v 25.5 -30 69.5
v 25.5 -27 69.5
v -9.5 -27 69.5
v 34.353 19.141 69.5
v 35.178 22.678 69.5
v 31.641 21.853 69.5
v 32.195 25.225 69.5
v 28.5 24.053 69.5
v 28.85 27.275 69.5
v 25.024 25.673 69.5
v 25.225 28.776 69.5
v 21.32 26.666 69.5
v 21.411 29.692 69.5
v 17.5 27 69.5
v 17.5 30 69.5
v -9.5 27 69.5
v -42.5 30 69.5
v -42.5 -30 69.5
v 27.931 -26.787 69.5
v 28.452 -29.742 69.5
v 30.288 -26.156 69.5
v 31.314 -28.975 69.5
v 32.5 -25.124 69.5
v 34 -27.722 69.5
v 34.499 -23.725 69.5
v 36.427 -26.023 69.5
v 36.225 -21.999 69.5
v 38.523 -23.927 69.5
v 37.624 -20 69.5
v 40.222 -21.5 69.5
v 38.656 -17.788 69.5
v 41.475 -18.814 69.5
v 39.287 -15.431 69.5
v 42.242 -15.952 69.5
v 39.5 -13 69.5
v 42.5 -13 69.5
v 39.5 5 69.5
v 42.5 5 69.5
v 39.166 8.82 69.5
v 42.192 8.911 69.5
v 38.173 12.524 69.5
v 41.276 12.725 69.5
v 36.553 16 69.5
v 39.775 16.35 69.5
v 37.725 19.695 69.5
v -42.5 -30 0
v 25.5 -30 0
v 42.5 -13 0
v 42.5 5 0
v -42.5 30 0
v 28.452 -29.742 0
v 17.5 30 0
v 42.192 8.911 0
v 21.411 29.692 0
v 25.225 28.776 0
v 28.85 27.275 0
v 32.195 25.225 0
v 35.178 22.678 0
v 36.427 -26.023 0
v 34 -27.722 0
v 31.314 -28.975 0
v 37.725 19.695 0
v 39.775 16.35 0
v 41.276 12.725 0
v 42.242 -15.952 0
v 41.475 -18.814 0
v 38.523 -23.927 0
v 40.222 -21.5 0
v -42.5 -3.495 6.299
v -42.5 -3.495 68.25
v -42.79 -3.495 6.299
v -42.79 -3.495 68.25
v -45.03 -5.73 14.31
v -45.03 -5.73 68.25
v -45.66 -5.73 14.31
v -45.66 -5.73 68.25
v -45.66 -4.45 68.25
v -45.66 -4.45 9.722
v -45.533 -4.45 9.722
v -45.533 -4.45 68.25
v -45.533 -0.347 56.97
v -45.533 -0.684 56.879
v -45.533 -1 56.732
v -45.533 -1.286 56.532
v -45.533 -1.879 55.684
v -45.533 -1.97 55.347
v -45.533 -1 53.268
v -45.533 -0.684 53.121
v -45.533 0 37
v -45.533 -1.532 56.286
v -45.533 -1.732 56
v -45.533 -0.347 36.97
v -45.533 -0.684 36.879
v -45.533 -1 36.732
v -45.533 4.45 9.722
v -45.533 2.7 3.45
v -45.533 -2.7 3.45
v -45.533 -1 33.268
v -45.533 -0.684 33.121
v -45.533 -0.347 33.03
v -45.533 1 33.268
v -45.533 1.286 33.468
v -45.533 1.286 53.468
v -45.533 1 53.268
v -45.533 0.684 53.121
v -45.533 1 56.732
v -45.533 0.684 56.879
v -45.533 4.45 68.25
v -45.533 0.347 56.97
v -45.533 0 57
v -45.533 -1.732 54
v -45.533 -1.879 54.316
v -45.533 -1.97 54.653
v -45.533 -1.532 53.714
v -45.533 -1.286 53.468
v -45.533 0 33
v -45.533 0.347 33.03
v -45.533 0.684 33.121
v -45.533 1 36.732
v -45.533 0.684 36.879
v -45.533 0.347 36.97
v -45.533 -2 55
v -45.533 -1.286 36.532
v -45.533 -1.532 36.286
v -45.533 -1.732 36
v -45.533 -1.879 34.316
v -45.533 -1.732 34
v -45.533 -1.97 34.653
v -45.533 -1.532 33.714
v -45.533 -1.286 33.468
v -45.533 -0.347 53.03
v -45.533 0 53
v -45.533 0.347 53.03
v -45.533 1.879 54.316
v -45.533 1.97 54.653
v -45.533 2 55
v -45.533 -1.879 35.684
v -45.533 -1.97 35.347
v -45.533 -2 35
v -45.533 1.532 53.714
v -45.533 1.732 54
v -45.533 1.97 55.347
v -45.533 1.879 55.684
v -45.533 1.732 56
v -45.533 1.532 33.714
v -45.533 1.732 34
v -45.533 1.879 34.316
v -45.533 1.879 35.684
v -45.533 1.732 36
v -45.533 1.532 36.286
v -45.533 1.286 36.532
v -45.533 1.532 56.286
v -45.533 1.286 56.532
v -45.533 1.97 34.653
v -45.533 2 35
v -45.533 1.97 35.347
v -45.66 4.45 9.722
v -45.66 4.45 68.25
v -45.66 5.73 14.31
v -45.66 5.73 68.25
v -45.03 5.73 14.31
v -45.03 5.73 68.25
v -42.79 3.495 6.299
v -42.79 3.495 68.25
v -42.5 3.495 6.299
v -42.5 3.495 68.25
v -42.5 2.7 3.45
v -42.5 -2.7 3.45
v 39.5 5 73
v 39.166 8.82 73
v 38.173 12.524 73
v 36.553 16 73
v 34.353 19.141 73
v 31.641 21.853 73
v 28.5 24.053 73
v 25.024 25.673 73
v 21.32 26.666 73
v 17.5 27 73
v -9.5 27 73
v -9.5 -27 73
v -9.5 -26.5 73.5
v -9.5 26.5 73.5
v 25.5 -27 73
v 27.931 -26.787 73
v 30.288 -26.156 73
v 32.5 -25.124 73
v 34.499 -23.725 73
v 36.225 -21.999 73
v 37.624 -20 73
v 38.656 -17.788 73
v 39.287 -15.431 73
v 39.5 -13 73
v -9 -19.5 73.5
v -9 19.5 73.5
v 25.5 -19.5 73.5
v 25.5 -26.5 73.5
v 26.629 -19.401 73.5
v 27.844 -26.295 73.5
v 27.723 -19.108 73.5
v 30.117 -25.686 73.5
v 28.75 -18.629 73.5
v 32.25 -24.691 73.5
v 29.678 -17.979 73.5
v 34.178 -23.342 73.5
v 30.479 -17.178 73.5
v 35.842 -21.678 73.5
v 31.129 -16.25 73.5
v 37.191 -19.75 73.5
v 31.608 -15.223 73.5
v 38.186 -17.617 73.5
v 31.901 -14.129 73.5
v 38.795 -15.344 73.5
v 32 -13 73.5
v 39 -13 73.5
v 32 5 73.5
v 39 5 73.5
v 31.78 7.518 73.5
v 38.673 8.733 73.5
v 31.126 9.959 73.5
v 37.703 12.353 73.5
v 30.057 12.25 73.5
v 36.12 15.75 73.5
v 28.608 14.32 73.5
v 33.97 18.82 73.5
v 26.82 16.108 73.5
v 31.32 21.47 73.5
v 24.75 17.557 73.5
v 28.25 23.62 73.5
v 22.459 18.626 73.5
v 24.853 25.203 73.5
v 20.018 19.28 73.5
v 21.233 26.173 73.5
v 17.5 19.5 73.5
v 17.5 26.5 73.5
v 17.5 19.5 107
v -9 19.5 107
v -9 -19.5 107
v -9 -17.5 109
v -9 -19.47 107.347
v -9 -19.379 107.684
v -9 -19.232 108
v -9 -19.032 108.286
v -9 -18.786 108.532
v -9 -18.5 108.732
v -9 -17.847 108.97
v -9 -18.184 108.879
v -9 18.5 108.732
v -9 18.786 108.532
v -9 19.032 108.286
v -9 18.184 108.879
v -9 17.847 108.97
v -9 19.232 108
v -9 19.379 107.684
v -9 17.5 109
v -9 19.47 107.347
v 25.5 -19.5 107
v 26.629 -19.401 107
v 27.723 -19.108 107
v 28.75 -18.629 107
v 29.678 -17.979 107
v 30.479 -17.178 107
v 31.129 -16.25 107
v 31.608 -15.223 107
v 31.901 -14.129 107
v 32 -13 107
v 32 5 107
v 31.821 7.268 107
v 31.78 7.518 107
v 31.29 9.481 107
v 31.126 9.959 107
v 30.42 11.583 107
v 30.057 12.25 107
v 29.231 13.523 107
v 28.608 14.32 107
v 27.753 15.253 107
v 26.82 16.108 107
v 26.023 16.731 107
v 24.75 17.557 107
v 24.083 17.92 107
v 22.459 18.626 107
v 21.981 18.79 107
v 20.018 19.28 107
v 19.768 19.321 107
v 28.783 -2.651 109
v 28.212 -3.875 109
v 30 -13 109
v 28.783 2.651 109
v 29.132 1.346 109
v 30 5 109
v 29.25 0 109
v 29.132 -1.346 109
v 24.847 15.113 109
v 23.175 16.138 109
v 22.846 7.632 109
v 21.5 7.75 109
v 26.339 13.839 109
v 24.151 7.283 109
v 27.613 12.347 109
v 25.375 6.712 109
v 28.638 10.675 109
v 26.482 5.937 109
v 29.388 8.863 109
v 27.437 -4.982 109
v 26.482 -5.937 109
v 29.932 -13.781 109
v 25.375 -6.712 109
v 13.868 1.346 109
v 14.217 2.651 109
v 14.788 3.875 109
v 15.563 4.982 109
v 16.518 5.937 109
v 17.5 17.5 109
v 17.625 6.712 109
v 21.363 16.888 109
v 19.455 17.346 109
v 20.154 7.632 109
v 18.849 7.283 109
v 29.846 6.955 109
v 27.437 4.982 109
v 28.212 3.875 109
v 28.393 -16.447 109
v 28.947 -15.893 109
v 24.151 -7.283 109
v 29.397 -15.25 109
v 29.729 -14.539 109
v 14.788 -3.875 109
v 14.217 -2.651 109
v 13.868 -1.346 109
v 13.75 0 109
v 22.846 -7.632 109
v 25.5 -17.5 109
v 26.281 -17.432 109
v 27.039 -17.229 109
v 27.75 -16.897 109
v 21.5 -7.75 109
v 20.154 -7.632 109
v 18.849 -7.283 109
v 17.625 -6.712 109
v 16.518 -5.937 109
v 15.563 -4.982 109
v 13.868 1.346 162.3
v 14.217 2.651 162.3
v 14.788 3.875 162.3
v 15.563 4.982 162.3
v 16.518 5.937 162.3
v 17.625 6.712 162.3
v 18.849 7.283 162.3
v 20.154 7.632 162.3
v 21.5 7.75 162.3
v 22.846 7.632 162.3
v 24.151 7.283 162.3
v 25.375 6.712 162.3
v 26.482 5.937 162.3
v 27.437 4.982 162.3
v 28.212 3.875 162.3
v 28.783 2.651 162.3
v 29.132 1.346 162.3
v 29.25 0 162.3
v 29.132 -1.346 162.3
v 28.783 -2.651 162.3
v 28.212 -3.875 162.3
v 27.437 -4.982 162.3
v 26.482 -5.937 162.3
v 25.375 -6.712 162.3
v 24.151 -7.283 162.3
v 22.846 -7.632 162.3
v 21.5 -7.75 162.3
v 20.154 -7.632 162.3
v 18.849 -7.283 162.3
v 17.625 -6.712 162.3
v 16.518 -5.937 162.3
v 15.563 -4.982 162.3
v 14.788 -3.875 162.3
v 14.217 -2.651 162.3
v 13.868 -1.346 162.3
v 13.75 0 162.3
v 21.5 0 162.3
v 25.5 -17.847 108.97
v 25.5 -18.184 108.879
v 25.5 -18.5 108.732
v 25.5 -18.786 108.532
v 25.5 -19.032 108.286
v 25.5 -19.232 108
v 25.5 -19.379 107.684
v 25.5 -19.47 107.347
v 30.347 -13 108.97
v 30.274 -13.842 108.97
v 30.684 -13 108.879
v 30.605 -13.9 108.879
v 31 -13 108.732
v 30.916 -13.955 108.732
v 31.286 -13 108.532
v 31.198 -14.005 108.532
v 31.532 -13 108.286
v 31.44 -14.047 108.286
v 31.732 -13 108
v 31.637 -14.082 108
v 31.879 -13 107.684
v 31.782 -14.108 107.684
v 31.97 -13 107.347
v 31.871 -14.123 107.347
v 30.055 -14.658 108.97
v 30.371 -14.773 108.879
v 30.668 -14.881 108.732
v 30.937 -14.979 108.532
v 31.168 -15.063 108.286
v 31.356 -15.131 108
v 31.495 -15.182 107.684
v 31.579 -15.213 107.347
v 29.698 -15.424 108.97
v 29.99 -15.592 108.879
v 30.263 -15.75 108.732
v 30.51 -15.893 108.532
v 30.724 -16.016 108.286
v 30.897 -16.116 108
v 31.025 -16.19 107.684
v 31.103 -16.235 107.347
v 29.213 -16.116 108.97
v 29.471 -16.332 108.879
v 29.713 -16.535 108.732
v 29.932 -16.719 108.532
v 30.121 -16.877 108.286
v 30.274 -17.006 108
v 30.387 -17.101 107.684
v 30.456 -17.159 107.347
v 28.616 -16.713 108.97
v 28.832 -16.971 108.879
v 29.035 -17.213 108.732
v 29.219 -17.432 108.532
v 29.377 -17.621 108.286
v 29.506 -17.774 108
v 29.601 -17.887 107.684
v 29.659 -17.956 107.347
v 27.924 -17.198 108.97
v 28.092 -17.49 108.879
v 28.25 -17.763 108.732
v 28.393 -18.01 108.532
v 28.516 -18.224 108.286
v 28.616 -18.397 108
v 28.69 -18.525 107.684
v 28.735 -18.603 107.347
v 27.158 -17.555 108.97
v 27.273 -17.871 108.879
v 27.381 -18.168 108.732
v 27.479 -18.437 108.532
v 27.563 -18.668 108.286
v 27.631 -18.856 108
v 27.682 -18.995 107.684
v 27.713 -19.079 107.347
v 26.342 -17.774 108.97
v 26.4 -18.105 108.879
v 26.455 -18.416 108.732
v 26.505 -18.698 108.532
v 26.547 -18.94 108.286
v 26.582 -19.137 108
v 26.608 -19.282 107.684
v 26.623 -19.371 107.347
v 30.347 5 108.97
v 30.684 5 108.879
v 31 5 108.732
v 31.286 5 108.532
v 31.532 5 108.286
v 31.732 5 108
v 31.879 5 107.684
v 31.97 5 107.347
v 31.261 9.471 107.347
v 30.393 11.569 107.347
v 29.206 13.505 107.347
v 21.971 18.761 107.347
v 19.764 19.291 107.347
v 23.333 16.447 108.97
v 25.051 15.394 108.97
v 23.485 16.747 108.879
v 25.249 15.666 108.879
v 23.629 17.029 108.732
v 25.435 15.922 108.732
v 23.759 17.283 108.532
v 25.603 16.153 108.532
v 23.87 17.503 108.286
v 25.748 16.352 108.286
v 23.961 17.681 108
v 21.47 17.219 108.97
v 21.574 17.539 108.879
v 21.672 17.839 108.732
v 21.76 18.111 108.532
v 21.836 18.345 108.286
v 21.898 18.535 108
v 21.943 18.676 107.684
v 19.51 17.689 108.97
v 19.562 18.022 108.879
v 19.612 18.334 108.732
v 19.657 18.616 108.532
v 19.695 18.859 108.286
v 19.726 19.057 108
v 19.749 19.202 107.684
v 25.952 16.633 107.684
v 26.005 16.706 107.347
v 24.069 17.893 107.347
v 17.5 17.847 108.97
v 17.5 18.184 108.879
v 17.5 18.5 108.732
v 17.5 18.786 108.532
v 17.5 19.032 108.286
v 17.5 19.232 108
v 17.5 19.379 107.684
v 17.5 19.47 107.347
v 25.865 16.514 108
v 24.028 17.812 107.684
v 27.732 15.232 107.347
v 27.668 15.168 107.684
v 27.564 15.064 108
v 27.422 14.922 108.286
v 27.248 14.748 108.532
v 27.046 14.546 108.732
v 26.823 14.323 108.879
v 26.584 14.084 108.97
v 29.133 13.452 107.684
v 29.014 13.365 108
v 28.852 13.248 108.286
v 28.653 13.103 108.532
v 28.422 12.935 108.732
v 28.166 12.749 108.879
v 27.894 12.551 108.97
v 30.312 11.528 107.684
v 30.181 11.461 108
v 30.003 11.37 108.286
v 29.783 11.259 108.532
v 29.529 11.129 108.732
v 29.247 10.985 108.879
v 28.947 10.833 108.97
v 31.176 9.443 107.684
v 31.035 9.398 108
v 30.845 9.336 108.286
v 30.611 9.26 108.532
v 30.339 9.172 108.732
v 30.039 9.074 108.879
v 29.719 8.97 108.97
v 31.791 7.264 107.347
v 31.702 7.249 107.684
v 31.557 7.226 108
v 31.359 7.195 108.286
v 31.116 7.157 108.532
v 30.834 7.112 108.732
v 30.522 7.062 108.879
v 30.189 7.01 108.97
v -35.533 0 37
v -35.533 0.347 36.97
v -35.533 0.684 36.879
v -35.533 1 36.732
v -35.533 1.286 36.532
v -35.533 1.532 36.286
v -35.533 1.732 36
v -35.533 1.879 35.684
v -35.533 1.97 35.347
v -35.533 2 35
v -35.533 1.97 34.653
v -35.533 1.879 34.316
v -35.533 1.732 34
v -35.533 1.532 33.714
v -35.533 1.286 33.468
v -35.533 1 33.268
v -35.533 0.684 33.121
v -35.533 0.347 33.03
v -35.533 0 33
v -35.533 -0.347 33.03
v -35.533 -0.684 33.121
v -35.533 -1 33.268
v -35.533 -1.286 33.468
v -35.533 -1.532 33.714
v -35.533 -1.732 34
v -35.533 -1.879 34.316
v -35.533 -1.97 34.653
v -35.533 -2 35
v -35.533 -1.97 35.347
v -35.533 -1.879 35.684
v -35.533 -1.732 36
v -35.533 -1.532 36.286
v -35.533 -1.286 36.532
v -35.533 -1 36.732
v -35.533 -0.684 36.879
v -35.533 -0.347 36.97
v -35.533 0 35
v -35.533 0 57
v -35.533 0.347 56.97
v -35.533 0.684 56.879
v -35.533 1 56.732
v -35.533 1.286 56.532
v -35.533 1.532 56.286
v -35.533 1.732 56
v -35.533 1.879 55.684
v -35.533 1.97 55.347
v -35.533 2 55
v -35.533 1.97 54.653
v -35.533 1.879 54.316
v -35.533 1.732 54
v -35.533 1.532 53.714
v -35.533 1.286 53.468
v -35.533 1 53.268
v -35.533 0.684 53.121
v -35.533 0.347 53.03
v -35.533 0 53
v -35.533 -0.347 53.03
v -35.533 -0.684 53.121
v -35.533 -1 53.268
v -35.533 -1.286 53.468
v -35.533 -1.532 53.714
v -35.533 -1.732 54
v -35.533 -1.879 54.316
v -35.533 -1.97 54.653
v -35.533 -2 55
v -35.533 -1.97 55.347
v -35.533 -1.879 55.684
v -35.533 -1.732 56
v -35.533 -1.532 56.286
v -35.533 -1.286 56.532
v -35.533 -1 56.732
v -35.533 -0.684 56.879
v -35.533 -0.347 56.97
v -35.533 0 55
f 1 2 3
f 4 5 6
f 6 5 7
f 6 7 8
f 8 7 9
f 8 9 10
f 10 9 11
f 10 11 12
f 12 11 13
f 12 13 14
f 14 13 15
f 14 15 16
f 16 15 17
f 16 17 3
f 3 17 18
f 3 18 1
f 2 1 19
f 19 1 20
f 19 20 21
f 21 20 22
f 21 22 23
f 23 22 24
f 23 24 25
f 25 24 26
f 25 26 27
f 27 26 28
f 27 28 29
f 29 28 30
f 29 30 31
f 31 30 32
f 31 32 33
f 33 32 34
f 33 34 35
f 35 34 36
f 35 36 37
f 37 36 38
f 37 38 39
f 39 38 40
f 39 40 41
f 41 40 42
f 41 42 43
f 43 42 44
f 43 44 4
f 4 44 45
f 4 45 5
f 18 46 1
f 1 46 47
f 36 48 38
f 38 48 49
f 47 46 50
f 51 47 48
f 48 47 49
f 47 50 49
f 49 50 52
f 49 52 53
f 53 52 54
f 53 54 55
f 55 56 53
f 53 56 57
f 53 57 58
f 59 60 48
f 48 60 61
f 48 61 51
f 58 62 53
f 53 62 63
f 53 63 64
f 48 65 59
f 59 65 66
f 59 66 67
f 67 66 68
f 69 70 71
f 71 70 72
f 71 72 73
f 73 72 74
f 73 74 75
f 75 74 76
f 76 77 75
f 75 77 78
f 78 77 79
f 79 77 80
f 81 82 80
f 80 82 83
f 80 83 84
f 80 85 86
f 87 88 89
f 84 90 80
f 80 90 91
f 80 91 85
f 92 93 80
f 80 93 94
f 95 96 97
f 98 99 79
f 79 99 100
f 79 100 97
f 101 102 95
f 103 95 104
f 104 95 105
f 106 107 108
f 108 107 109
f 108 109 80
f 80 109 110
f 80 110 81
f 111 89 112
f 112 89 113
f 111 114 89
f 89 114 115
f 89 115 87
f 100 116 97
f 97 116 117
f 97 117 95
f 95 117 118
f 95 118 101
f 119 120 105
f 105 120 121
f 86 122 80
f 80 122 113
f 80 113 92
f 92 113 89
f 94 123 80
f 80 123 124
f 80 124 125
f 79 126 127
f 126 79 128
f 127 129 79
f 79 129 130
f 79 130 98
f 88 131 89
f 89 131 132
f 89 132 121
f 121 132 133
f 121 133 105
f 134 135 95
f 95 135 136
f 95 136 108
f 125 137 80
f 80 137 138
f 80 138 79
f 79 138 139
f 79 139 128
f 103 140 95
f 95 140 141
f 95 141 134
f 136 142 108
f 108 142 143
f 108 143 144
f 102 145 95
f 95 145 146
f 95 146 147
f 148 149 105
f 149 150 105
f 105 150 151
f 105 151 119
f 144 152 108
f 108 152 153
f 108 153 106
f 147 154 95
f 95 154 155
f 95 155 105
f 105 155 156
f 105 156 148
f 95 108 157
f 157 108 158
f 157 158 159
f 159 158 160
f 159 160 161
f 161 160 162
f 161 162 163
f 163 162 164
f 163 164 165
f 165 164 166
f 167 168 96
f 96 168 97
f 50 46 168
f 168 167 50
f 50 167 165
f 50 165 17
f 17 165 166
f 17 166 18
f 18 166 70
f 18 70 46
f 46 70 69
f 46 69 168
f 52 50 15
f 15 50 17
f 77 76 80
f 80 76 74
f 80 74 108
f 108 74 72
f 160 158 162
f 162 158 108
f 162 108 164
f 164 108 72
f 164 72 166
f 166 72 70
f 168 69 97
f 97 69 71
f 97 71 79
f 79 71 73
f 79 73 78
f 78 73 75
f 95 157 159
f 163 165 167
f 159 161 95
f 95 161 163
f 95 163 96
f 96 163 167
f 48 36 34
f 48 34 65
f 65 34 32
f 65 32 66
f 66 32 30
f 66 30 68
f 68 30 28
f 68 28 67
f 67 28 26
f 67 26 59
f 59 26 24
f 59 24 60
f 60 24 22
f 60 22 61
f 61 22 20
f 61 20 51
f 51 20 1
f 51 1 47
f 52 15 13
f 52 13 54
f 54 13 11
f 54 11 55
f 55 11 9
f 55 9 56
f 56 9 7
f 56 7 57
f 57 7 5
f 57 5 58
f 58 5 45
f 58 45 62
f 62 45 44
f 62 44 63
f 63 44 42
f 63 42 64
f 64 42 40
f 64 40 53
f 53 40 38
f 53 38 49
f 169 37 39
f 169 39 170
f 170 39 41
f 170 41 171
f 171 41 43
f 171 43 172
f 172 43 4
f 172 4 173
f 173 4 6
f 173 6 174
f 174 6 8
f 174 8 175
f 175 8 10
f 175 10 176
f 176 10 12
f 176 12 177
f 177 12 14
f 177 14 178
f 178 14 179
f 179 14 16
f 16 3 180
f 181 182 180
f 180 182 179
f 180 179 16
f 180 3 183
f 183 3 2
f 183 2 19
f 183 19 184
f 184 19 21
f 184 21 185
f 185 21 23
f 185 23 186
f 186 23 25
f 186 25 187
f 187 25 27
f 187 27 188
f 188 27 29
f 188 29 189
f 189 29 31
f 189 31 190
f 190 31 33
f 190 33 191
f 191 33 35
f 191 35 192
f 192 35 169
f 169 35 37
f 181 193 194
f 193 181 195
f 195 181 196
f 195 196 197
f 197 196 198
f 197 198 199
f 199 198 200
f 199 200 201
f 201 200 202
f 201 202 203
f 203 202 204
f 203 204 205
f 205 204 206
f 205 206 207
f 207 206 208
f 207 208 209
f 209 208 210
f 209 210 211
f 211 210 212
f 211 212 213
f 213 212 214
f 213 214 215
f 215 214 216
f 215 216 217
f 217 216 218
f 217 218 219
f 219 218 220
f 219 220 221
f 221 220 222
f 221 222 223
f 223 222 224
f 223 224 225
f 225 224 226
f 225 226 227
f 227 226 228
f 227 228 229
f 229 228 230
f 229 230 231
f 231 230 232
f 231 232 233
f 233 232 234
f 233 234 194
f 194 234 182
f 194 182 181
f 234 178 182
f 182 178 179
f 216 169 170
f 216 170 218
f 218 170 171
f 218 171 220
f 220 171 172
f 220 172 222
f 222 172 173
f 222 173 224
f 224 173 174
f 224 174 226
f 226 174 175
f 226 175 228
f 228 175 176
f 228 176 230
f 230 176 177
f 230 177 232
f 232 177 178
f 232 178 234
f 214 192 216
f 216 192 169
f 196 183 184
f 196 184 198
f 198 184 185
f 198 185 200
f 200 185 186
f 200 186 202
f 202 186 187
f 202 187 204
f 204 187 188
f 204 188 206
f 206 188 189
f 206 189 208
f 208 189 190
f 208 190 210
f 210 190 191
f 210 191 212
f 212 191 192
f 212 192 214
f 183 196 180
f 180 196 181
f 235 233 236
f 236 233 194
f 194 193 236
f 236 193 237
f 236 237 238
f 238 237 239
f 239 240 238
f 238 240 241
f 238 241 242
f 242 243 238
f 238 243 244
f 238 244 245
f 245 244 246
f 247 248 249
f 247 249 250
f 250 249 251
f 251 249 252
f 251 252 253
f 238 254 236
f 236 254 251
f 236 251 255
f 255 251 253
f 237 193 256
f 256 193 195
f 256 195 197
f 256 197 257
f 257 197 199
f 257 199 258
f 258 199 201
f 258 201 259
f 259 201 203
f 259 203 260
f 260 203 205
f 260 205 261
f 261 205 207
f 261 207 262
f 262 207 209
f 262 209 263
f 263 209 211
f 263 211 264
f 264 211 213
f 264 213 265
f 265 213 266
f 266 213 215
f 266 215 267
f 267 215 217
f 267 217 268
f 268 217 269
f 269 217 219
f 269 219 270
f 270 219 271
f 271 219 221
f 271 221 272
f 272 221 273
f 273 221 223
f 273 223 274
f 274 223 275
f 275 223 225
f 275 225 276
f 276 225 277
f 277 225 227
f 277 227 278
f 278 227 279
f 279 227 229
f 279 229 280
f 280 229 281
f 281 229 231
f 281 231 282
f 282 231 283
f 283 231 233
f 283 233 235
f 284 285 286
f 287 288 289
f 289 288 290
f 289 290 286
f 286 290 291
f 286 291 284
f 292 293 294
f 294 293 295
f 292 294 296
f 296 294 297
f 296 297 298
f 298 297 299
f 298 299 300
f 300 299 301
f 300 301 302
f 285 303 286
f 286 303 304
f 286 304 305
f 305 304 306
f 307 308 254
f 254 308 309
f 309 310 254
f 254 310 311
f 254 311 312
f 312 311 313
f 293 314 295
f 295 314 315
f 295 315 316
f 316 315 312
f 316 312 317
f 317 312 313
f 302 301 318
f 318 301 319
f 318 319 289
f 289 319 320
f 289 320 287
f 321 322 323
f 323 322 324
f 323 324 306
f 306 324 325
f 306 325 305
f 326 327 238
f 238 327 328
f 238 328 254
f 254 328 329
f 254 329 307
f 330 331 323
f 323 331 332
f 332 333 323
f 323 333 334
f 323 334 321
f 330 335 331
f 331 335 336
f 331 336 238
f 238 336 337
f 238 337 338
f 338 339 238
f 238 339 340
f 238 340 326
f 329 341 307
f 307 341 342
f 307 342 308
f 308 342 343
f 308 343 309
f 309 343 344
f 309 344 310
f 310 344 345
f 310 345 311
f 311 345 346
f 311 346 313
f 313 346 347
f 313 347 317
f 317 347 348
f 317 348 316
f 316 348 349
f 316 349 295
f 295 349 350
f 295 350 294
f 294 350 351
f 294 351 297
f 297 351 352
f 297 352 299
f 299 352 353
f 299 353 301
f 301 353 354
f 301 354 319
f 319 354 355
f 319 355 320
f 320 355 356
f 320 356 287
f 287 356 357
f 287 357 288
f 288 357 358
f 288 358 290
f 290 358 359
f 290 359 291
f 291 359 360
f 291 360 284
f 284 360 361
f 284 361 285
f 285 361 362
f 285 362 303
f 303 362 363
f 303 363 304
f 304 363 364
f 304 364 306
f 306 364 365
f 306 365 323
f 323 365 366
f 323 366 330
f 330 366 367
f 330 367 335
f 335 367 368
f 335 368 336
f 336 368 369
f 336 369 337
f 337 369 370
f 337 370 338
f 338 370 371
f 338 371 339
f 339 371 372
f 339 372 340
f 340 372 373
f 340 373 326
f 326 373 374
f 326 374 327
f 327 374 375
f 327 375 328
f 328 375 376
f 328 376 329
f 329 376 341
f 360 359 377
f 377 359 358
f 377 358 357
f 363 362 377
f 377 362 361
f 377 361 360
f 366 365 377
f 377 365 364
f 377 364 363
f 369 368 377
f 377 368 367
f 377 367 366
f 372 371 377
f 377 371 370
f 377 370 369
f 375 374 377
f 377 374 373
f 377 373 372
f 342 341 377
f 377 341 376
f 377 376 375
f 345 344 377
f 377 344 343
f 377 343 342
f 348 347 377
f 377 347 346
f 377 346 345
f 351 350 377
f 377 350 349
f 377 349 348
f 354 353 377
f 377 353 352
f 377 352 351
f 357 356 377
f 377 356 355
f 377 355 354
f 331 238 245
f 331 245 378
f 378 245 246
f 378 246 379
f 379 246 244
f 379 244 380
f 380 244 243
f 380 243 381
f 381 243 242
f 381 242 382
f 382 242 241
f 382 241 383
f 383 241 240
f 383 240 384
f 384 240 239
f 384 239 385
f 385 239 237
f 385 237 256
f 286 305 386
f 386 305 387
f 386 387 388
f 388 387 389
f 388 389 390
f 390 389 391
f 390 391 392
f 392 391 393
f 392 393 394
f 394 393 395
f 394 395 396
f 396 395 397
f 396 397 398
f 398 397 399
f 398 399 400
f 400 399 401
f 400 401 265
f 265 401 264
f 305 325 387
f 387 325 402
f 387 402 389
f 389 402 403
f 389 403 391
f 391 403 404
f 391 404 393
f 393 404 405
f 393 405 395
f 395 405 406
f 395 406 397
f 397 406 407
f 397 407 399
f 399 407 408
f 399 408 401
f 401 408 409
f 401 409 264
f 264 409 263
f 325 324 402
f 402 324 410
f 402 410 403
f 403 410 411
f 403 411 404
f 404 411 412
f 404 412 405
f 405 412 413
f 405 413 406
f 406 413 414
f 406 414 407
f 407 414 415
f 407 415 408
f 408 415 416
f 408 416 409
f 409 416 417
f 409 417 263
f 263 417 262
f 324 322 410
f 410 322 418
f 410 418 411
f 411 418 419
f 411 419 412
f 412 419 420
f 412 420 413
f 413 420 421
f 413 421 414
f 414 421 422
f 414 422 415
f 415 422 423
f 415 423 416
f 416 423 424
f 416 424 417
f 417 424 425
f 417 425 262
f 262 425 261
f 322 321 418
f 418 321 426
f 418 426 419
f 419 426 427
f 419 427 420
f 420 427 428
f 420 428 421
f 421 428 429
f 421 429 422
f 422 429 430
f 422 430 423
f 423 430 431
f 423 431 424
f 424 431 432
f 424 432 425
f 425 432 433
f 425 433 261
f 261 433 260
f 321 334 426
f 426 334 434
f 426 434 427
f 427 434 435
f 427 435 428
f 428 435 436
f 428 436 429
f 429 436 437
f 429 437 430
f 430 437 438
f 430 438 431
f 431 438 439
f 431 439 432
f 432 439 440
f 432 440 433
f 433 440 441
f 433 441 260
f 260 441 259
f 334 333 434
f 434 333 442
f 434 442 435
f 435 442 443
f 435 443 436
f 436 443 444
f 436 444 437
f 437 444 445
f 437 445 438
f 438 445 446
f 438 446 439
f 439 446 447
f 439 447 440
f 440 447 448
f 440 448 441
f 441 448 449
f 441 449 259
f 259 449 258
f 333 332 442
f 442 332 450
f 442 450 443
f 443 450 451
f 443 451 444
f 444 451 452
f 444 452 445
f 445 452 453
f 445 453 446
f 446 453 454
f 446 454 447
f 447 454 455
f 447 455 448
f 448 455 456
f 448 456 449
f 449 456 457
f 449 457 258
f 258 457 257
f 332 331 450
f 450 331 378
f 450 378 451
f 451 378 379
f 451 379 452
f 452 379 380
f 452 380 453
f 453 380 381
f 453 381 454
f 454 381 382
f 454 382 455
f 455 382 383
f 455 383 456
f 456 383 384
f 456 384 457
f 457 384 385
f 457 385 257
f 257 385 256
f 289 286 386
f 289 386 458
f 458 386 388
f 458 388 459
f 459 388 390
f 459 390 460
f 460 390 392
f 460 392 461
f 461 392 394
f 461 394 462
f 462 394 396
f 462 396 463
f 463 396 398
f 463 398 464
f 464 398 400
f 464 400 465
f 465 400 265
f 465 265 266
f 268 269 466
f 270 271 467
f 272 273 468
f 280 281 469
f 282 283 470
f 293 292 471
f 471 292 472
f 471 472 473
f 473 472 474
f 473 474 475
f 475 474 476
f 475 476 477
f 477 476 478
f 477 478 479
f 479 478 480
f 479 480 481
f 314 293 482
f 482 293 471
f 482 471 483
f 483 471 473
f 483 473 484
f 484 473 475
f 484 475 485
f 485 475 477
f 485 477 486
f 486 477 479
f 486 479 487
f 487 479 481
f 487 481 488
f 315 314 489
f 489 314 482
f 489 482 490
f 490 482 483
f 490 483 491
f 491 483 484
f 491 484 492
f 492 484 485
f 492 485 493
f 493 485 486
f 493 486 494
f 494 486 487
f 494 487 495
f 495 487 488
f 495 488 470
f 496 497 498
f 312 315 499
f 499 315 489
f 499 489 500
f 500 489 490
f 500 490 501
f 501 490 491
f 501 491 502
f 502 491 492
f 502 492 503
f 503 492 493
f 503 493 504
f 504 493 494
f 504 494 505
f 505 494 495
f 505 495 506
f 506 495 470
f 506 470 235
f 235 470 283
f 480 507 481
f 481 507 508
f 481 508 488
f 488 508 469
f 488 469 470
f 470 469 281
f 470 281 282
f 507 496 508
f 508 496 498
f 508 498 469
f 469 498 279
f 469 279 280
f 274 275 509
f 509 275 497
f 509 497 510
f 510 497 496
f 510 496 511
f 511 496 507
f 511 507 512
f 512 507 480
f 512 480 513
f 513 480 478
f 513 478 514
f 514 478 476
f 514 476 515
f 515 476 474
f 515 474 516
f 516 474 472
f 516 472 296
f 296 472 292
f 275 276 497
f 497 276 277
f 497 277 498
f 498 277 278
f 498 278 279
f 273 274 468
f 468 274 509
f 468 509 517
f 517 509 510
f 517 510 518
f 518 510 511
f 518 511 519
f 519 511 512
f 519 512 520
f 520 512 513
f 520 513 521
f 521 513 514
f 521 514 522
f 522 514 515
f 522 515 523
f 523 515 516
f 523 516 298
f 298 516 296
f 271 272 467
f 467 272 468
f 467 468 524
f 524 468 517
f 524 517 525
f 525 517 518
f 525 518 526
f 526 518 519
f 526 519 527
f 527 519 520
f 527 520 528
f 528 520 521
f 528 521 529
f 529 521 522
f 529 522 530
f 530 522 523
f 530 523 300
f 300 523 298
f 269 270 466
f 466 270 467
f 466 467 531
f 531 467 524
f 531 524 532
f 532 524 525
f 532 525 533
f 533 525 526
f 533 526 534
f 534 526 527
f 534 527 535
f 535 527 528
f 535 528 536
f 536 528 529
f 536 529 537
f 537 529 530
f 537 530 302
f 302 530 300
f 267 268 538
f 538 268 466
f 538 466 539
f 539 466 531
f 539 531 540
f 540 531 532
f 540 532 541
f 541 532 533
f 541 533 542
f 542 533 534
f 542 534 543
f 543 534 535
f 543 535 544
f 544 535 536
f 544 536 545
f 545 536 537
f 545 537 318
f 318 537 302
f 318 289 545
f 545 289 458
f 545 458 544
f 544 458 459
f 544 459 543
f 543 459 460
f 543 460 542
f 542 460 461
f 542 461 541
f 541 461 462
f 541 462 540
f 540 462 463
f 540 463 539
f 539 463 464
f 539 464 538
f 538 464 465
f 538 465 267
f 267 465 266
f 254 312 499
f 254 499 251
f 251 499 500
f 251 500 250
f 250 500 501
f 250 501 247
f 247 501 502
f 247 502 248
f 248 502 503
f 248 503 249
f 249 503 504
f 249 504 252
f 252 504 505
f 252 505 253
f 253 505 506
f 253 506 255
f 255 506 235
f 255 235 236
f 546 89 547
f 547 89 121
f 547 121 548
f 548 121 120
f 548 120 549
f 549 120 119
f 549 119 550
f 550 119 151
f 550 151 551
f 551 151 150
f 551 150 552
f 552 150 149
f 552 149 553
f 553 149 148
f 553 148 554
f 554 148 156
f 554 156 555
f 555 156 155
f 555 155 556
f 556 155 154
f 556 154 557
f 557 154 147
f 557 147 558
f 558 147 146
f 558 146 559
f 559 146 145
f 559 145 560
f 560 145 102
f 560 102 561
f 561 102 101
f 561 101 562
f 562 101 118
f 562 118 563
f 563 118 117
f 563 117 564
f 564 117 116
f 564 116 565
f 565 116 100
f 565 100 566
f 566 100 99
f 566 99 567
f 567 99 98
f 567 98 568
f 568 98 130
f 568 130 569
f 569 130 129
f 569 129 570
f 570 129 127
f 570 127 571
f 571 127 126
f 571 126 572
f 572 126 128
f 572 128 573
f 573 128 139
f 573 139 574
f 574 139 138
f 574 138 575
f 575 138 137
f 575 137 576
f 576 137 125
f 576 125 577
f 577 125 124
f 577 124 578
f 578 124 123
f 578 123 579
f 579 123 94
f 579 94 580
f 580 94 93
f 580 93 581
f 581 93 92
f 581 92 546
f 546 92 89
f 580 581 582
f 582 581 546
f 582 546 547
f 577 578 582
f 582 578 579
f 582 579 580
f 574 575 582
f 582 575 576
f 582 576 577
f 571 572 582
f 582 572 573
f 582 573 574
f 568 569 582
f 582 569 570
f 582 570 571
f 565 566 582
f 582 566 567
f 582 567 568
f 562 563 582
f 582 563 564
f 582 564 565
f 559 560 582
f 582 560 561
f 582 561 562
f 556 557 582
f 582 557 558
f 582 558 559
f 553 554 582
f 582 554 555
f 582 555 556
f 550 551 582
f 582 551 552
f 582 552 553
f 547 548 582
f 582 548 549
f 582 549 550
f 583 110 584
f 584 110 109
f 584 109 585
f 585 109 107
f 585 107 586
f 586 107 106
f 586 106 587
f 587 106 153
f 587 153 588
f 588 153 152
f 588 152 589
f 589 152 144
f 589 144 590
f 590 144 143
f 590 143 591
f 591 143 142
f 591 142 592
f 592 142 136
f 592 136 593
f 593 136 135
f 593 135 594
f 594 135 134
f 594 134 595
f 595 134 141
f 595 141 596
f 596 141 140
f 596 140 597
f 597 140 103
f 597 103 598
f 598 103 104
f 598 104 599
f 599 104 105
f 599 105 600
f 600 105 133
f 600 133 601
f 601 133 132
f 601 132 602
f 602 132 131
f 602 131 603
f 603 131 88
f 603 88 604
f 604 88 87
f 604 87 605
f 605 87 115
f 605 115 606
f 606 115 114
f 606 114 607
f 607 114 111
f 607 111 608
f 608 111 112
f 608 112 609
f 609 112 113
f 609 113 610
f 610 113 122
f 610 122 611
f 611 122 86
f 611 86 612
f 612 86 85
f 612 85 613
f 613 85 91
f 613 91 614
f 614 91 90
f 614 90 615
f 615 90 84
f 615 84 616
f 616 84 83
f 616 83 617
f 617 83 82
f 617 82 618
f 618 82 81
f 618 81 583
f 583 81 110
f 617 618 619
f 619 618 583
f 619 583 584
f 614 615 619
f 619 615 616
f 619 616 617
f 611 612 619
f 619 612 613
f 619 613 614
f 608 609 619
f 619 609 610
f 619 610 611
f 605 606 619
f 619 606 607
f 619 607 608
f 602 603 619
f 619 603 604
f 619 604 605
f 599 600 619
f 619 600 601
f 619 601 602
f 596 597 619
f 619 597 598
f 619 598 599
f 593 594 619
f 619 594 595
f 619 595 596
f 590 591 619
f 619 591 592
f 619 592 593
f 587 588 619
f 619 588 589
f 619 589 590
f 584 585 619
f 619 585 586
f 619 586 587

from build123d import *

# Parameters (mm, degrees)
SKETCH1_W           = 85
SKETCH1_H           = 60
BOSS_EXTRUDE1_DEPTH = 69.5
BOSS_EXTRUDE2_DEPTH = 66.05
SKETCH3_W           = 3.16
SKETCH3_H           = 1.25
CUT_EXTRUDE1_DEPTH  = 103.54309143
CUT_EXTRUDE2_DEPTH  = 114.821131606
CUT_EXTRUDE3_DEPTH  = 89.402972801
BOSS_EXTRUDE3_DEPTH = 4
CHAMFER1_SIZE       = 0.5
BOSS_EXTRUDE4_DEPTH = 35.5
SKETCH8_R           = 7.75
BOSS_EXTRUDE5_DEPTH = 53.3
FILLET1_R           = 2
SKETCH9_R           = 2
CUT_EXTRUDE4_DEPTH  = 10


with BuildPart() as part:
    # Sketch1 → Boss-Extrude1 (new body)
    with BuildSketch(Plane.XY):
        Rectangle(SKETCH1_W, SKETCH1_H)
    extrude(amount=BOSS_EXTRUDE1_DEPTH)

    # Sketch2 → Boss-Extrude2 (add)
    with BuildSketch(Plane.XY.offset(69.5)):
        Polygon((-42.5, 3.495), (-42.79, 3.495), (-45.03, 5.73), (-45.66, 5.73), (-45.66, 4.45), (-45.533118158, 4.45), (-45.533118158, -4.45), (-45.66, -4.45), (-45.66, -5.73), (-45.03, -5.73), (-42.79, -3.495), (-42.5, -3.495), align=None)
    extrude(amount=-BOSS_EXTRUDE2_DEPTH)

    # Sketch3 → Cut-Extrude1 (cut, through all)
    with BuildSketch(Plane.XZ.offset(30)):
        with Locations((-44.08, 68.875)):
            Rectangle(SKETCH3_W, SKETCH3_H)
    extrude(amount=-CUT_EXTRUDE1_DEPTH, mode=Mode.SUBTRACT)

    # Sketch4 → Cut-Extrude2 (cut, through all)
    with BuildSketch(Plane.ZY.offset(42.5)):
        Polygon((3.45, 2.7), (14.31, 5.73), (3.45, 5.73), align=None)
        Polygon((3.45, -5.73), (3.45, -2.7), (14.31, -5.73), align=None)
    extrude(amount=CUT_EXTRUDE2_DEPTH, mode=Mode.SUBTRACT)

    # Sketch5 → Cut-Extrude3 (cut, through all)
    with BuildSketch(Plane.XY.offset(69.5)):
        with BuildLine():
            Line((42.5, -13), (42.5, -30))
            Line((42.5, -30), (25.5, -30))
            ThreePointArc((25.5, -30), (37.52081528, -25.02081528), (42.5, -13))
        make_face()
        with BuildLine():
            Line((17.5, 30), (42.5, 30))
            Line((42.5, 30), (42.5, 5))
            ThreePointArc((42.5, 5), (35.17766953, 22.67766953), (17.5, 30))
        make_face()
    extrude(amount=-CUT_EXTRUDE3_DEPTH, mode=Mode.SUBTRACT)

    # Sketch6 → Boss-Extrude3 (add)
    with BuildSketch(Plane.XY.offset(69.5)):
        with BuildLine():
            Line((17.5, 27), (-9.5, 27))
            Line((-9.5, 27), (-9.5, -27))
            Line((-9.5, -27), (17.308513795, -27))
            Line((17.308513795, -27), (25.5, -27))
            ThreePointArc((25.5, -27), (35.399494937, -22.899494937), (39.5, -13))
            Line((39.5, -13), (39.5, 5))
            ThreePointArc((39.5, 5), (33.056349186, 20.556349186), (17.5, 27))
        make_face()
    extrude(amount=BOSS_EXTRUDE3_DEPTH)

    # Chamfer1
    chamfer1_edges = [part.edges().sort_by_distance(p)[0] for p in [
        (33.056349186, 20.556349186, 73.5),
        (4, 27, 73.5),
        (8, -27, 73.5),
        (35.399494937, -22.899494937, 73.5),
        (39.5, -4, 73.5),
    ]]
    chamfer(chamfer1_edges, length=CHAMFER1_SIZE)

    # Sketch7 → Boss-Extrude4 (add)
    with BuildSketch(Plane.XY.offset(73.5)):
        with BuildLine():
            Line((-9, 19.5), (-9, -19.5))
            Line((-9, -19.5), (25.5, -19.5))
            ThreePointArc((25.5, -19.5), (30.096194078, -17.596194078), (32, -13))
            Line((32, -13), (32, 5))
            ThreePointArc((32, 5), (27.753048327, 15.253048327), (17.5, 19.5))
            Line((17.5, 19.5), (-9, 19.5))
        make_face()
    extrude(amount=BOSS_EXTRUDE4_DEPTH)

    # Sketch8 → Boss-Extrude5 (add)
    with BuildSketch(Plane.XY.offset(109)):
        with Locations((21.5, 0)):
            Circle(SKETCH8_R)
    extrude(amount=BOSS_EXTRUDE5_DEPTH)

    # Fillet1
    fillet1_edges = [part.edges().sort_by_distance(p)[0] for p in [
        (4.25, 19.5, 109),
        (8.25, -19.5, 109),
        (30.096194078, -17.596194078, 109),
        (32, -4, 109),
        (27.753048327, 15.253048327, 109),
    ]]
    fillet(fillet1_edges, radius=FILLET1_R)

    # Sketch9 → Cut-Extrude4 (cut)
    with BuildSketch(Plane.ZY.offset(45.533118158)):
        with Locations((55, 0)):
            Circle(SKETCH9_R)
        with Locations((35, 0)):
            Circle(SKETCH9_R)
    extrude(amount=-CUT_EXTRUDE4_DEPTH, mode=Mode.SUBTRACT)


solid = part.part
